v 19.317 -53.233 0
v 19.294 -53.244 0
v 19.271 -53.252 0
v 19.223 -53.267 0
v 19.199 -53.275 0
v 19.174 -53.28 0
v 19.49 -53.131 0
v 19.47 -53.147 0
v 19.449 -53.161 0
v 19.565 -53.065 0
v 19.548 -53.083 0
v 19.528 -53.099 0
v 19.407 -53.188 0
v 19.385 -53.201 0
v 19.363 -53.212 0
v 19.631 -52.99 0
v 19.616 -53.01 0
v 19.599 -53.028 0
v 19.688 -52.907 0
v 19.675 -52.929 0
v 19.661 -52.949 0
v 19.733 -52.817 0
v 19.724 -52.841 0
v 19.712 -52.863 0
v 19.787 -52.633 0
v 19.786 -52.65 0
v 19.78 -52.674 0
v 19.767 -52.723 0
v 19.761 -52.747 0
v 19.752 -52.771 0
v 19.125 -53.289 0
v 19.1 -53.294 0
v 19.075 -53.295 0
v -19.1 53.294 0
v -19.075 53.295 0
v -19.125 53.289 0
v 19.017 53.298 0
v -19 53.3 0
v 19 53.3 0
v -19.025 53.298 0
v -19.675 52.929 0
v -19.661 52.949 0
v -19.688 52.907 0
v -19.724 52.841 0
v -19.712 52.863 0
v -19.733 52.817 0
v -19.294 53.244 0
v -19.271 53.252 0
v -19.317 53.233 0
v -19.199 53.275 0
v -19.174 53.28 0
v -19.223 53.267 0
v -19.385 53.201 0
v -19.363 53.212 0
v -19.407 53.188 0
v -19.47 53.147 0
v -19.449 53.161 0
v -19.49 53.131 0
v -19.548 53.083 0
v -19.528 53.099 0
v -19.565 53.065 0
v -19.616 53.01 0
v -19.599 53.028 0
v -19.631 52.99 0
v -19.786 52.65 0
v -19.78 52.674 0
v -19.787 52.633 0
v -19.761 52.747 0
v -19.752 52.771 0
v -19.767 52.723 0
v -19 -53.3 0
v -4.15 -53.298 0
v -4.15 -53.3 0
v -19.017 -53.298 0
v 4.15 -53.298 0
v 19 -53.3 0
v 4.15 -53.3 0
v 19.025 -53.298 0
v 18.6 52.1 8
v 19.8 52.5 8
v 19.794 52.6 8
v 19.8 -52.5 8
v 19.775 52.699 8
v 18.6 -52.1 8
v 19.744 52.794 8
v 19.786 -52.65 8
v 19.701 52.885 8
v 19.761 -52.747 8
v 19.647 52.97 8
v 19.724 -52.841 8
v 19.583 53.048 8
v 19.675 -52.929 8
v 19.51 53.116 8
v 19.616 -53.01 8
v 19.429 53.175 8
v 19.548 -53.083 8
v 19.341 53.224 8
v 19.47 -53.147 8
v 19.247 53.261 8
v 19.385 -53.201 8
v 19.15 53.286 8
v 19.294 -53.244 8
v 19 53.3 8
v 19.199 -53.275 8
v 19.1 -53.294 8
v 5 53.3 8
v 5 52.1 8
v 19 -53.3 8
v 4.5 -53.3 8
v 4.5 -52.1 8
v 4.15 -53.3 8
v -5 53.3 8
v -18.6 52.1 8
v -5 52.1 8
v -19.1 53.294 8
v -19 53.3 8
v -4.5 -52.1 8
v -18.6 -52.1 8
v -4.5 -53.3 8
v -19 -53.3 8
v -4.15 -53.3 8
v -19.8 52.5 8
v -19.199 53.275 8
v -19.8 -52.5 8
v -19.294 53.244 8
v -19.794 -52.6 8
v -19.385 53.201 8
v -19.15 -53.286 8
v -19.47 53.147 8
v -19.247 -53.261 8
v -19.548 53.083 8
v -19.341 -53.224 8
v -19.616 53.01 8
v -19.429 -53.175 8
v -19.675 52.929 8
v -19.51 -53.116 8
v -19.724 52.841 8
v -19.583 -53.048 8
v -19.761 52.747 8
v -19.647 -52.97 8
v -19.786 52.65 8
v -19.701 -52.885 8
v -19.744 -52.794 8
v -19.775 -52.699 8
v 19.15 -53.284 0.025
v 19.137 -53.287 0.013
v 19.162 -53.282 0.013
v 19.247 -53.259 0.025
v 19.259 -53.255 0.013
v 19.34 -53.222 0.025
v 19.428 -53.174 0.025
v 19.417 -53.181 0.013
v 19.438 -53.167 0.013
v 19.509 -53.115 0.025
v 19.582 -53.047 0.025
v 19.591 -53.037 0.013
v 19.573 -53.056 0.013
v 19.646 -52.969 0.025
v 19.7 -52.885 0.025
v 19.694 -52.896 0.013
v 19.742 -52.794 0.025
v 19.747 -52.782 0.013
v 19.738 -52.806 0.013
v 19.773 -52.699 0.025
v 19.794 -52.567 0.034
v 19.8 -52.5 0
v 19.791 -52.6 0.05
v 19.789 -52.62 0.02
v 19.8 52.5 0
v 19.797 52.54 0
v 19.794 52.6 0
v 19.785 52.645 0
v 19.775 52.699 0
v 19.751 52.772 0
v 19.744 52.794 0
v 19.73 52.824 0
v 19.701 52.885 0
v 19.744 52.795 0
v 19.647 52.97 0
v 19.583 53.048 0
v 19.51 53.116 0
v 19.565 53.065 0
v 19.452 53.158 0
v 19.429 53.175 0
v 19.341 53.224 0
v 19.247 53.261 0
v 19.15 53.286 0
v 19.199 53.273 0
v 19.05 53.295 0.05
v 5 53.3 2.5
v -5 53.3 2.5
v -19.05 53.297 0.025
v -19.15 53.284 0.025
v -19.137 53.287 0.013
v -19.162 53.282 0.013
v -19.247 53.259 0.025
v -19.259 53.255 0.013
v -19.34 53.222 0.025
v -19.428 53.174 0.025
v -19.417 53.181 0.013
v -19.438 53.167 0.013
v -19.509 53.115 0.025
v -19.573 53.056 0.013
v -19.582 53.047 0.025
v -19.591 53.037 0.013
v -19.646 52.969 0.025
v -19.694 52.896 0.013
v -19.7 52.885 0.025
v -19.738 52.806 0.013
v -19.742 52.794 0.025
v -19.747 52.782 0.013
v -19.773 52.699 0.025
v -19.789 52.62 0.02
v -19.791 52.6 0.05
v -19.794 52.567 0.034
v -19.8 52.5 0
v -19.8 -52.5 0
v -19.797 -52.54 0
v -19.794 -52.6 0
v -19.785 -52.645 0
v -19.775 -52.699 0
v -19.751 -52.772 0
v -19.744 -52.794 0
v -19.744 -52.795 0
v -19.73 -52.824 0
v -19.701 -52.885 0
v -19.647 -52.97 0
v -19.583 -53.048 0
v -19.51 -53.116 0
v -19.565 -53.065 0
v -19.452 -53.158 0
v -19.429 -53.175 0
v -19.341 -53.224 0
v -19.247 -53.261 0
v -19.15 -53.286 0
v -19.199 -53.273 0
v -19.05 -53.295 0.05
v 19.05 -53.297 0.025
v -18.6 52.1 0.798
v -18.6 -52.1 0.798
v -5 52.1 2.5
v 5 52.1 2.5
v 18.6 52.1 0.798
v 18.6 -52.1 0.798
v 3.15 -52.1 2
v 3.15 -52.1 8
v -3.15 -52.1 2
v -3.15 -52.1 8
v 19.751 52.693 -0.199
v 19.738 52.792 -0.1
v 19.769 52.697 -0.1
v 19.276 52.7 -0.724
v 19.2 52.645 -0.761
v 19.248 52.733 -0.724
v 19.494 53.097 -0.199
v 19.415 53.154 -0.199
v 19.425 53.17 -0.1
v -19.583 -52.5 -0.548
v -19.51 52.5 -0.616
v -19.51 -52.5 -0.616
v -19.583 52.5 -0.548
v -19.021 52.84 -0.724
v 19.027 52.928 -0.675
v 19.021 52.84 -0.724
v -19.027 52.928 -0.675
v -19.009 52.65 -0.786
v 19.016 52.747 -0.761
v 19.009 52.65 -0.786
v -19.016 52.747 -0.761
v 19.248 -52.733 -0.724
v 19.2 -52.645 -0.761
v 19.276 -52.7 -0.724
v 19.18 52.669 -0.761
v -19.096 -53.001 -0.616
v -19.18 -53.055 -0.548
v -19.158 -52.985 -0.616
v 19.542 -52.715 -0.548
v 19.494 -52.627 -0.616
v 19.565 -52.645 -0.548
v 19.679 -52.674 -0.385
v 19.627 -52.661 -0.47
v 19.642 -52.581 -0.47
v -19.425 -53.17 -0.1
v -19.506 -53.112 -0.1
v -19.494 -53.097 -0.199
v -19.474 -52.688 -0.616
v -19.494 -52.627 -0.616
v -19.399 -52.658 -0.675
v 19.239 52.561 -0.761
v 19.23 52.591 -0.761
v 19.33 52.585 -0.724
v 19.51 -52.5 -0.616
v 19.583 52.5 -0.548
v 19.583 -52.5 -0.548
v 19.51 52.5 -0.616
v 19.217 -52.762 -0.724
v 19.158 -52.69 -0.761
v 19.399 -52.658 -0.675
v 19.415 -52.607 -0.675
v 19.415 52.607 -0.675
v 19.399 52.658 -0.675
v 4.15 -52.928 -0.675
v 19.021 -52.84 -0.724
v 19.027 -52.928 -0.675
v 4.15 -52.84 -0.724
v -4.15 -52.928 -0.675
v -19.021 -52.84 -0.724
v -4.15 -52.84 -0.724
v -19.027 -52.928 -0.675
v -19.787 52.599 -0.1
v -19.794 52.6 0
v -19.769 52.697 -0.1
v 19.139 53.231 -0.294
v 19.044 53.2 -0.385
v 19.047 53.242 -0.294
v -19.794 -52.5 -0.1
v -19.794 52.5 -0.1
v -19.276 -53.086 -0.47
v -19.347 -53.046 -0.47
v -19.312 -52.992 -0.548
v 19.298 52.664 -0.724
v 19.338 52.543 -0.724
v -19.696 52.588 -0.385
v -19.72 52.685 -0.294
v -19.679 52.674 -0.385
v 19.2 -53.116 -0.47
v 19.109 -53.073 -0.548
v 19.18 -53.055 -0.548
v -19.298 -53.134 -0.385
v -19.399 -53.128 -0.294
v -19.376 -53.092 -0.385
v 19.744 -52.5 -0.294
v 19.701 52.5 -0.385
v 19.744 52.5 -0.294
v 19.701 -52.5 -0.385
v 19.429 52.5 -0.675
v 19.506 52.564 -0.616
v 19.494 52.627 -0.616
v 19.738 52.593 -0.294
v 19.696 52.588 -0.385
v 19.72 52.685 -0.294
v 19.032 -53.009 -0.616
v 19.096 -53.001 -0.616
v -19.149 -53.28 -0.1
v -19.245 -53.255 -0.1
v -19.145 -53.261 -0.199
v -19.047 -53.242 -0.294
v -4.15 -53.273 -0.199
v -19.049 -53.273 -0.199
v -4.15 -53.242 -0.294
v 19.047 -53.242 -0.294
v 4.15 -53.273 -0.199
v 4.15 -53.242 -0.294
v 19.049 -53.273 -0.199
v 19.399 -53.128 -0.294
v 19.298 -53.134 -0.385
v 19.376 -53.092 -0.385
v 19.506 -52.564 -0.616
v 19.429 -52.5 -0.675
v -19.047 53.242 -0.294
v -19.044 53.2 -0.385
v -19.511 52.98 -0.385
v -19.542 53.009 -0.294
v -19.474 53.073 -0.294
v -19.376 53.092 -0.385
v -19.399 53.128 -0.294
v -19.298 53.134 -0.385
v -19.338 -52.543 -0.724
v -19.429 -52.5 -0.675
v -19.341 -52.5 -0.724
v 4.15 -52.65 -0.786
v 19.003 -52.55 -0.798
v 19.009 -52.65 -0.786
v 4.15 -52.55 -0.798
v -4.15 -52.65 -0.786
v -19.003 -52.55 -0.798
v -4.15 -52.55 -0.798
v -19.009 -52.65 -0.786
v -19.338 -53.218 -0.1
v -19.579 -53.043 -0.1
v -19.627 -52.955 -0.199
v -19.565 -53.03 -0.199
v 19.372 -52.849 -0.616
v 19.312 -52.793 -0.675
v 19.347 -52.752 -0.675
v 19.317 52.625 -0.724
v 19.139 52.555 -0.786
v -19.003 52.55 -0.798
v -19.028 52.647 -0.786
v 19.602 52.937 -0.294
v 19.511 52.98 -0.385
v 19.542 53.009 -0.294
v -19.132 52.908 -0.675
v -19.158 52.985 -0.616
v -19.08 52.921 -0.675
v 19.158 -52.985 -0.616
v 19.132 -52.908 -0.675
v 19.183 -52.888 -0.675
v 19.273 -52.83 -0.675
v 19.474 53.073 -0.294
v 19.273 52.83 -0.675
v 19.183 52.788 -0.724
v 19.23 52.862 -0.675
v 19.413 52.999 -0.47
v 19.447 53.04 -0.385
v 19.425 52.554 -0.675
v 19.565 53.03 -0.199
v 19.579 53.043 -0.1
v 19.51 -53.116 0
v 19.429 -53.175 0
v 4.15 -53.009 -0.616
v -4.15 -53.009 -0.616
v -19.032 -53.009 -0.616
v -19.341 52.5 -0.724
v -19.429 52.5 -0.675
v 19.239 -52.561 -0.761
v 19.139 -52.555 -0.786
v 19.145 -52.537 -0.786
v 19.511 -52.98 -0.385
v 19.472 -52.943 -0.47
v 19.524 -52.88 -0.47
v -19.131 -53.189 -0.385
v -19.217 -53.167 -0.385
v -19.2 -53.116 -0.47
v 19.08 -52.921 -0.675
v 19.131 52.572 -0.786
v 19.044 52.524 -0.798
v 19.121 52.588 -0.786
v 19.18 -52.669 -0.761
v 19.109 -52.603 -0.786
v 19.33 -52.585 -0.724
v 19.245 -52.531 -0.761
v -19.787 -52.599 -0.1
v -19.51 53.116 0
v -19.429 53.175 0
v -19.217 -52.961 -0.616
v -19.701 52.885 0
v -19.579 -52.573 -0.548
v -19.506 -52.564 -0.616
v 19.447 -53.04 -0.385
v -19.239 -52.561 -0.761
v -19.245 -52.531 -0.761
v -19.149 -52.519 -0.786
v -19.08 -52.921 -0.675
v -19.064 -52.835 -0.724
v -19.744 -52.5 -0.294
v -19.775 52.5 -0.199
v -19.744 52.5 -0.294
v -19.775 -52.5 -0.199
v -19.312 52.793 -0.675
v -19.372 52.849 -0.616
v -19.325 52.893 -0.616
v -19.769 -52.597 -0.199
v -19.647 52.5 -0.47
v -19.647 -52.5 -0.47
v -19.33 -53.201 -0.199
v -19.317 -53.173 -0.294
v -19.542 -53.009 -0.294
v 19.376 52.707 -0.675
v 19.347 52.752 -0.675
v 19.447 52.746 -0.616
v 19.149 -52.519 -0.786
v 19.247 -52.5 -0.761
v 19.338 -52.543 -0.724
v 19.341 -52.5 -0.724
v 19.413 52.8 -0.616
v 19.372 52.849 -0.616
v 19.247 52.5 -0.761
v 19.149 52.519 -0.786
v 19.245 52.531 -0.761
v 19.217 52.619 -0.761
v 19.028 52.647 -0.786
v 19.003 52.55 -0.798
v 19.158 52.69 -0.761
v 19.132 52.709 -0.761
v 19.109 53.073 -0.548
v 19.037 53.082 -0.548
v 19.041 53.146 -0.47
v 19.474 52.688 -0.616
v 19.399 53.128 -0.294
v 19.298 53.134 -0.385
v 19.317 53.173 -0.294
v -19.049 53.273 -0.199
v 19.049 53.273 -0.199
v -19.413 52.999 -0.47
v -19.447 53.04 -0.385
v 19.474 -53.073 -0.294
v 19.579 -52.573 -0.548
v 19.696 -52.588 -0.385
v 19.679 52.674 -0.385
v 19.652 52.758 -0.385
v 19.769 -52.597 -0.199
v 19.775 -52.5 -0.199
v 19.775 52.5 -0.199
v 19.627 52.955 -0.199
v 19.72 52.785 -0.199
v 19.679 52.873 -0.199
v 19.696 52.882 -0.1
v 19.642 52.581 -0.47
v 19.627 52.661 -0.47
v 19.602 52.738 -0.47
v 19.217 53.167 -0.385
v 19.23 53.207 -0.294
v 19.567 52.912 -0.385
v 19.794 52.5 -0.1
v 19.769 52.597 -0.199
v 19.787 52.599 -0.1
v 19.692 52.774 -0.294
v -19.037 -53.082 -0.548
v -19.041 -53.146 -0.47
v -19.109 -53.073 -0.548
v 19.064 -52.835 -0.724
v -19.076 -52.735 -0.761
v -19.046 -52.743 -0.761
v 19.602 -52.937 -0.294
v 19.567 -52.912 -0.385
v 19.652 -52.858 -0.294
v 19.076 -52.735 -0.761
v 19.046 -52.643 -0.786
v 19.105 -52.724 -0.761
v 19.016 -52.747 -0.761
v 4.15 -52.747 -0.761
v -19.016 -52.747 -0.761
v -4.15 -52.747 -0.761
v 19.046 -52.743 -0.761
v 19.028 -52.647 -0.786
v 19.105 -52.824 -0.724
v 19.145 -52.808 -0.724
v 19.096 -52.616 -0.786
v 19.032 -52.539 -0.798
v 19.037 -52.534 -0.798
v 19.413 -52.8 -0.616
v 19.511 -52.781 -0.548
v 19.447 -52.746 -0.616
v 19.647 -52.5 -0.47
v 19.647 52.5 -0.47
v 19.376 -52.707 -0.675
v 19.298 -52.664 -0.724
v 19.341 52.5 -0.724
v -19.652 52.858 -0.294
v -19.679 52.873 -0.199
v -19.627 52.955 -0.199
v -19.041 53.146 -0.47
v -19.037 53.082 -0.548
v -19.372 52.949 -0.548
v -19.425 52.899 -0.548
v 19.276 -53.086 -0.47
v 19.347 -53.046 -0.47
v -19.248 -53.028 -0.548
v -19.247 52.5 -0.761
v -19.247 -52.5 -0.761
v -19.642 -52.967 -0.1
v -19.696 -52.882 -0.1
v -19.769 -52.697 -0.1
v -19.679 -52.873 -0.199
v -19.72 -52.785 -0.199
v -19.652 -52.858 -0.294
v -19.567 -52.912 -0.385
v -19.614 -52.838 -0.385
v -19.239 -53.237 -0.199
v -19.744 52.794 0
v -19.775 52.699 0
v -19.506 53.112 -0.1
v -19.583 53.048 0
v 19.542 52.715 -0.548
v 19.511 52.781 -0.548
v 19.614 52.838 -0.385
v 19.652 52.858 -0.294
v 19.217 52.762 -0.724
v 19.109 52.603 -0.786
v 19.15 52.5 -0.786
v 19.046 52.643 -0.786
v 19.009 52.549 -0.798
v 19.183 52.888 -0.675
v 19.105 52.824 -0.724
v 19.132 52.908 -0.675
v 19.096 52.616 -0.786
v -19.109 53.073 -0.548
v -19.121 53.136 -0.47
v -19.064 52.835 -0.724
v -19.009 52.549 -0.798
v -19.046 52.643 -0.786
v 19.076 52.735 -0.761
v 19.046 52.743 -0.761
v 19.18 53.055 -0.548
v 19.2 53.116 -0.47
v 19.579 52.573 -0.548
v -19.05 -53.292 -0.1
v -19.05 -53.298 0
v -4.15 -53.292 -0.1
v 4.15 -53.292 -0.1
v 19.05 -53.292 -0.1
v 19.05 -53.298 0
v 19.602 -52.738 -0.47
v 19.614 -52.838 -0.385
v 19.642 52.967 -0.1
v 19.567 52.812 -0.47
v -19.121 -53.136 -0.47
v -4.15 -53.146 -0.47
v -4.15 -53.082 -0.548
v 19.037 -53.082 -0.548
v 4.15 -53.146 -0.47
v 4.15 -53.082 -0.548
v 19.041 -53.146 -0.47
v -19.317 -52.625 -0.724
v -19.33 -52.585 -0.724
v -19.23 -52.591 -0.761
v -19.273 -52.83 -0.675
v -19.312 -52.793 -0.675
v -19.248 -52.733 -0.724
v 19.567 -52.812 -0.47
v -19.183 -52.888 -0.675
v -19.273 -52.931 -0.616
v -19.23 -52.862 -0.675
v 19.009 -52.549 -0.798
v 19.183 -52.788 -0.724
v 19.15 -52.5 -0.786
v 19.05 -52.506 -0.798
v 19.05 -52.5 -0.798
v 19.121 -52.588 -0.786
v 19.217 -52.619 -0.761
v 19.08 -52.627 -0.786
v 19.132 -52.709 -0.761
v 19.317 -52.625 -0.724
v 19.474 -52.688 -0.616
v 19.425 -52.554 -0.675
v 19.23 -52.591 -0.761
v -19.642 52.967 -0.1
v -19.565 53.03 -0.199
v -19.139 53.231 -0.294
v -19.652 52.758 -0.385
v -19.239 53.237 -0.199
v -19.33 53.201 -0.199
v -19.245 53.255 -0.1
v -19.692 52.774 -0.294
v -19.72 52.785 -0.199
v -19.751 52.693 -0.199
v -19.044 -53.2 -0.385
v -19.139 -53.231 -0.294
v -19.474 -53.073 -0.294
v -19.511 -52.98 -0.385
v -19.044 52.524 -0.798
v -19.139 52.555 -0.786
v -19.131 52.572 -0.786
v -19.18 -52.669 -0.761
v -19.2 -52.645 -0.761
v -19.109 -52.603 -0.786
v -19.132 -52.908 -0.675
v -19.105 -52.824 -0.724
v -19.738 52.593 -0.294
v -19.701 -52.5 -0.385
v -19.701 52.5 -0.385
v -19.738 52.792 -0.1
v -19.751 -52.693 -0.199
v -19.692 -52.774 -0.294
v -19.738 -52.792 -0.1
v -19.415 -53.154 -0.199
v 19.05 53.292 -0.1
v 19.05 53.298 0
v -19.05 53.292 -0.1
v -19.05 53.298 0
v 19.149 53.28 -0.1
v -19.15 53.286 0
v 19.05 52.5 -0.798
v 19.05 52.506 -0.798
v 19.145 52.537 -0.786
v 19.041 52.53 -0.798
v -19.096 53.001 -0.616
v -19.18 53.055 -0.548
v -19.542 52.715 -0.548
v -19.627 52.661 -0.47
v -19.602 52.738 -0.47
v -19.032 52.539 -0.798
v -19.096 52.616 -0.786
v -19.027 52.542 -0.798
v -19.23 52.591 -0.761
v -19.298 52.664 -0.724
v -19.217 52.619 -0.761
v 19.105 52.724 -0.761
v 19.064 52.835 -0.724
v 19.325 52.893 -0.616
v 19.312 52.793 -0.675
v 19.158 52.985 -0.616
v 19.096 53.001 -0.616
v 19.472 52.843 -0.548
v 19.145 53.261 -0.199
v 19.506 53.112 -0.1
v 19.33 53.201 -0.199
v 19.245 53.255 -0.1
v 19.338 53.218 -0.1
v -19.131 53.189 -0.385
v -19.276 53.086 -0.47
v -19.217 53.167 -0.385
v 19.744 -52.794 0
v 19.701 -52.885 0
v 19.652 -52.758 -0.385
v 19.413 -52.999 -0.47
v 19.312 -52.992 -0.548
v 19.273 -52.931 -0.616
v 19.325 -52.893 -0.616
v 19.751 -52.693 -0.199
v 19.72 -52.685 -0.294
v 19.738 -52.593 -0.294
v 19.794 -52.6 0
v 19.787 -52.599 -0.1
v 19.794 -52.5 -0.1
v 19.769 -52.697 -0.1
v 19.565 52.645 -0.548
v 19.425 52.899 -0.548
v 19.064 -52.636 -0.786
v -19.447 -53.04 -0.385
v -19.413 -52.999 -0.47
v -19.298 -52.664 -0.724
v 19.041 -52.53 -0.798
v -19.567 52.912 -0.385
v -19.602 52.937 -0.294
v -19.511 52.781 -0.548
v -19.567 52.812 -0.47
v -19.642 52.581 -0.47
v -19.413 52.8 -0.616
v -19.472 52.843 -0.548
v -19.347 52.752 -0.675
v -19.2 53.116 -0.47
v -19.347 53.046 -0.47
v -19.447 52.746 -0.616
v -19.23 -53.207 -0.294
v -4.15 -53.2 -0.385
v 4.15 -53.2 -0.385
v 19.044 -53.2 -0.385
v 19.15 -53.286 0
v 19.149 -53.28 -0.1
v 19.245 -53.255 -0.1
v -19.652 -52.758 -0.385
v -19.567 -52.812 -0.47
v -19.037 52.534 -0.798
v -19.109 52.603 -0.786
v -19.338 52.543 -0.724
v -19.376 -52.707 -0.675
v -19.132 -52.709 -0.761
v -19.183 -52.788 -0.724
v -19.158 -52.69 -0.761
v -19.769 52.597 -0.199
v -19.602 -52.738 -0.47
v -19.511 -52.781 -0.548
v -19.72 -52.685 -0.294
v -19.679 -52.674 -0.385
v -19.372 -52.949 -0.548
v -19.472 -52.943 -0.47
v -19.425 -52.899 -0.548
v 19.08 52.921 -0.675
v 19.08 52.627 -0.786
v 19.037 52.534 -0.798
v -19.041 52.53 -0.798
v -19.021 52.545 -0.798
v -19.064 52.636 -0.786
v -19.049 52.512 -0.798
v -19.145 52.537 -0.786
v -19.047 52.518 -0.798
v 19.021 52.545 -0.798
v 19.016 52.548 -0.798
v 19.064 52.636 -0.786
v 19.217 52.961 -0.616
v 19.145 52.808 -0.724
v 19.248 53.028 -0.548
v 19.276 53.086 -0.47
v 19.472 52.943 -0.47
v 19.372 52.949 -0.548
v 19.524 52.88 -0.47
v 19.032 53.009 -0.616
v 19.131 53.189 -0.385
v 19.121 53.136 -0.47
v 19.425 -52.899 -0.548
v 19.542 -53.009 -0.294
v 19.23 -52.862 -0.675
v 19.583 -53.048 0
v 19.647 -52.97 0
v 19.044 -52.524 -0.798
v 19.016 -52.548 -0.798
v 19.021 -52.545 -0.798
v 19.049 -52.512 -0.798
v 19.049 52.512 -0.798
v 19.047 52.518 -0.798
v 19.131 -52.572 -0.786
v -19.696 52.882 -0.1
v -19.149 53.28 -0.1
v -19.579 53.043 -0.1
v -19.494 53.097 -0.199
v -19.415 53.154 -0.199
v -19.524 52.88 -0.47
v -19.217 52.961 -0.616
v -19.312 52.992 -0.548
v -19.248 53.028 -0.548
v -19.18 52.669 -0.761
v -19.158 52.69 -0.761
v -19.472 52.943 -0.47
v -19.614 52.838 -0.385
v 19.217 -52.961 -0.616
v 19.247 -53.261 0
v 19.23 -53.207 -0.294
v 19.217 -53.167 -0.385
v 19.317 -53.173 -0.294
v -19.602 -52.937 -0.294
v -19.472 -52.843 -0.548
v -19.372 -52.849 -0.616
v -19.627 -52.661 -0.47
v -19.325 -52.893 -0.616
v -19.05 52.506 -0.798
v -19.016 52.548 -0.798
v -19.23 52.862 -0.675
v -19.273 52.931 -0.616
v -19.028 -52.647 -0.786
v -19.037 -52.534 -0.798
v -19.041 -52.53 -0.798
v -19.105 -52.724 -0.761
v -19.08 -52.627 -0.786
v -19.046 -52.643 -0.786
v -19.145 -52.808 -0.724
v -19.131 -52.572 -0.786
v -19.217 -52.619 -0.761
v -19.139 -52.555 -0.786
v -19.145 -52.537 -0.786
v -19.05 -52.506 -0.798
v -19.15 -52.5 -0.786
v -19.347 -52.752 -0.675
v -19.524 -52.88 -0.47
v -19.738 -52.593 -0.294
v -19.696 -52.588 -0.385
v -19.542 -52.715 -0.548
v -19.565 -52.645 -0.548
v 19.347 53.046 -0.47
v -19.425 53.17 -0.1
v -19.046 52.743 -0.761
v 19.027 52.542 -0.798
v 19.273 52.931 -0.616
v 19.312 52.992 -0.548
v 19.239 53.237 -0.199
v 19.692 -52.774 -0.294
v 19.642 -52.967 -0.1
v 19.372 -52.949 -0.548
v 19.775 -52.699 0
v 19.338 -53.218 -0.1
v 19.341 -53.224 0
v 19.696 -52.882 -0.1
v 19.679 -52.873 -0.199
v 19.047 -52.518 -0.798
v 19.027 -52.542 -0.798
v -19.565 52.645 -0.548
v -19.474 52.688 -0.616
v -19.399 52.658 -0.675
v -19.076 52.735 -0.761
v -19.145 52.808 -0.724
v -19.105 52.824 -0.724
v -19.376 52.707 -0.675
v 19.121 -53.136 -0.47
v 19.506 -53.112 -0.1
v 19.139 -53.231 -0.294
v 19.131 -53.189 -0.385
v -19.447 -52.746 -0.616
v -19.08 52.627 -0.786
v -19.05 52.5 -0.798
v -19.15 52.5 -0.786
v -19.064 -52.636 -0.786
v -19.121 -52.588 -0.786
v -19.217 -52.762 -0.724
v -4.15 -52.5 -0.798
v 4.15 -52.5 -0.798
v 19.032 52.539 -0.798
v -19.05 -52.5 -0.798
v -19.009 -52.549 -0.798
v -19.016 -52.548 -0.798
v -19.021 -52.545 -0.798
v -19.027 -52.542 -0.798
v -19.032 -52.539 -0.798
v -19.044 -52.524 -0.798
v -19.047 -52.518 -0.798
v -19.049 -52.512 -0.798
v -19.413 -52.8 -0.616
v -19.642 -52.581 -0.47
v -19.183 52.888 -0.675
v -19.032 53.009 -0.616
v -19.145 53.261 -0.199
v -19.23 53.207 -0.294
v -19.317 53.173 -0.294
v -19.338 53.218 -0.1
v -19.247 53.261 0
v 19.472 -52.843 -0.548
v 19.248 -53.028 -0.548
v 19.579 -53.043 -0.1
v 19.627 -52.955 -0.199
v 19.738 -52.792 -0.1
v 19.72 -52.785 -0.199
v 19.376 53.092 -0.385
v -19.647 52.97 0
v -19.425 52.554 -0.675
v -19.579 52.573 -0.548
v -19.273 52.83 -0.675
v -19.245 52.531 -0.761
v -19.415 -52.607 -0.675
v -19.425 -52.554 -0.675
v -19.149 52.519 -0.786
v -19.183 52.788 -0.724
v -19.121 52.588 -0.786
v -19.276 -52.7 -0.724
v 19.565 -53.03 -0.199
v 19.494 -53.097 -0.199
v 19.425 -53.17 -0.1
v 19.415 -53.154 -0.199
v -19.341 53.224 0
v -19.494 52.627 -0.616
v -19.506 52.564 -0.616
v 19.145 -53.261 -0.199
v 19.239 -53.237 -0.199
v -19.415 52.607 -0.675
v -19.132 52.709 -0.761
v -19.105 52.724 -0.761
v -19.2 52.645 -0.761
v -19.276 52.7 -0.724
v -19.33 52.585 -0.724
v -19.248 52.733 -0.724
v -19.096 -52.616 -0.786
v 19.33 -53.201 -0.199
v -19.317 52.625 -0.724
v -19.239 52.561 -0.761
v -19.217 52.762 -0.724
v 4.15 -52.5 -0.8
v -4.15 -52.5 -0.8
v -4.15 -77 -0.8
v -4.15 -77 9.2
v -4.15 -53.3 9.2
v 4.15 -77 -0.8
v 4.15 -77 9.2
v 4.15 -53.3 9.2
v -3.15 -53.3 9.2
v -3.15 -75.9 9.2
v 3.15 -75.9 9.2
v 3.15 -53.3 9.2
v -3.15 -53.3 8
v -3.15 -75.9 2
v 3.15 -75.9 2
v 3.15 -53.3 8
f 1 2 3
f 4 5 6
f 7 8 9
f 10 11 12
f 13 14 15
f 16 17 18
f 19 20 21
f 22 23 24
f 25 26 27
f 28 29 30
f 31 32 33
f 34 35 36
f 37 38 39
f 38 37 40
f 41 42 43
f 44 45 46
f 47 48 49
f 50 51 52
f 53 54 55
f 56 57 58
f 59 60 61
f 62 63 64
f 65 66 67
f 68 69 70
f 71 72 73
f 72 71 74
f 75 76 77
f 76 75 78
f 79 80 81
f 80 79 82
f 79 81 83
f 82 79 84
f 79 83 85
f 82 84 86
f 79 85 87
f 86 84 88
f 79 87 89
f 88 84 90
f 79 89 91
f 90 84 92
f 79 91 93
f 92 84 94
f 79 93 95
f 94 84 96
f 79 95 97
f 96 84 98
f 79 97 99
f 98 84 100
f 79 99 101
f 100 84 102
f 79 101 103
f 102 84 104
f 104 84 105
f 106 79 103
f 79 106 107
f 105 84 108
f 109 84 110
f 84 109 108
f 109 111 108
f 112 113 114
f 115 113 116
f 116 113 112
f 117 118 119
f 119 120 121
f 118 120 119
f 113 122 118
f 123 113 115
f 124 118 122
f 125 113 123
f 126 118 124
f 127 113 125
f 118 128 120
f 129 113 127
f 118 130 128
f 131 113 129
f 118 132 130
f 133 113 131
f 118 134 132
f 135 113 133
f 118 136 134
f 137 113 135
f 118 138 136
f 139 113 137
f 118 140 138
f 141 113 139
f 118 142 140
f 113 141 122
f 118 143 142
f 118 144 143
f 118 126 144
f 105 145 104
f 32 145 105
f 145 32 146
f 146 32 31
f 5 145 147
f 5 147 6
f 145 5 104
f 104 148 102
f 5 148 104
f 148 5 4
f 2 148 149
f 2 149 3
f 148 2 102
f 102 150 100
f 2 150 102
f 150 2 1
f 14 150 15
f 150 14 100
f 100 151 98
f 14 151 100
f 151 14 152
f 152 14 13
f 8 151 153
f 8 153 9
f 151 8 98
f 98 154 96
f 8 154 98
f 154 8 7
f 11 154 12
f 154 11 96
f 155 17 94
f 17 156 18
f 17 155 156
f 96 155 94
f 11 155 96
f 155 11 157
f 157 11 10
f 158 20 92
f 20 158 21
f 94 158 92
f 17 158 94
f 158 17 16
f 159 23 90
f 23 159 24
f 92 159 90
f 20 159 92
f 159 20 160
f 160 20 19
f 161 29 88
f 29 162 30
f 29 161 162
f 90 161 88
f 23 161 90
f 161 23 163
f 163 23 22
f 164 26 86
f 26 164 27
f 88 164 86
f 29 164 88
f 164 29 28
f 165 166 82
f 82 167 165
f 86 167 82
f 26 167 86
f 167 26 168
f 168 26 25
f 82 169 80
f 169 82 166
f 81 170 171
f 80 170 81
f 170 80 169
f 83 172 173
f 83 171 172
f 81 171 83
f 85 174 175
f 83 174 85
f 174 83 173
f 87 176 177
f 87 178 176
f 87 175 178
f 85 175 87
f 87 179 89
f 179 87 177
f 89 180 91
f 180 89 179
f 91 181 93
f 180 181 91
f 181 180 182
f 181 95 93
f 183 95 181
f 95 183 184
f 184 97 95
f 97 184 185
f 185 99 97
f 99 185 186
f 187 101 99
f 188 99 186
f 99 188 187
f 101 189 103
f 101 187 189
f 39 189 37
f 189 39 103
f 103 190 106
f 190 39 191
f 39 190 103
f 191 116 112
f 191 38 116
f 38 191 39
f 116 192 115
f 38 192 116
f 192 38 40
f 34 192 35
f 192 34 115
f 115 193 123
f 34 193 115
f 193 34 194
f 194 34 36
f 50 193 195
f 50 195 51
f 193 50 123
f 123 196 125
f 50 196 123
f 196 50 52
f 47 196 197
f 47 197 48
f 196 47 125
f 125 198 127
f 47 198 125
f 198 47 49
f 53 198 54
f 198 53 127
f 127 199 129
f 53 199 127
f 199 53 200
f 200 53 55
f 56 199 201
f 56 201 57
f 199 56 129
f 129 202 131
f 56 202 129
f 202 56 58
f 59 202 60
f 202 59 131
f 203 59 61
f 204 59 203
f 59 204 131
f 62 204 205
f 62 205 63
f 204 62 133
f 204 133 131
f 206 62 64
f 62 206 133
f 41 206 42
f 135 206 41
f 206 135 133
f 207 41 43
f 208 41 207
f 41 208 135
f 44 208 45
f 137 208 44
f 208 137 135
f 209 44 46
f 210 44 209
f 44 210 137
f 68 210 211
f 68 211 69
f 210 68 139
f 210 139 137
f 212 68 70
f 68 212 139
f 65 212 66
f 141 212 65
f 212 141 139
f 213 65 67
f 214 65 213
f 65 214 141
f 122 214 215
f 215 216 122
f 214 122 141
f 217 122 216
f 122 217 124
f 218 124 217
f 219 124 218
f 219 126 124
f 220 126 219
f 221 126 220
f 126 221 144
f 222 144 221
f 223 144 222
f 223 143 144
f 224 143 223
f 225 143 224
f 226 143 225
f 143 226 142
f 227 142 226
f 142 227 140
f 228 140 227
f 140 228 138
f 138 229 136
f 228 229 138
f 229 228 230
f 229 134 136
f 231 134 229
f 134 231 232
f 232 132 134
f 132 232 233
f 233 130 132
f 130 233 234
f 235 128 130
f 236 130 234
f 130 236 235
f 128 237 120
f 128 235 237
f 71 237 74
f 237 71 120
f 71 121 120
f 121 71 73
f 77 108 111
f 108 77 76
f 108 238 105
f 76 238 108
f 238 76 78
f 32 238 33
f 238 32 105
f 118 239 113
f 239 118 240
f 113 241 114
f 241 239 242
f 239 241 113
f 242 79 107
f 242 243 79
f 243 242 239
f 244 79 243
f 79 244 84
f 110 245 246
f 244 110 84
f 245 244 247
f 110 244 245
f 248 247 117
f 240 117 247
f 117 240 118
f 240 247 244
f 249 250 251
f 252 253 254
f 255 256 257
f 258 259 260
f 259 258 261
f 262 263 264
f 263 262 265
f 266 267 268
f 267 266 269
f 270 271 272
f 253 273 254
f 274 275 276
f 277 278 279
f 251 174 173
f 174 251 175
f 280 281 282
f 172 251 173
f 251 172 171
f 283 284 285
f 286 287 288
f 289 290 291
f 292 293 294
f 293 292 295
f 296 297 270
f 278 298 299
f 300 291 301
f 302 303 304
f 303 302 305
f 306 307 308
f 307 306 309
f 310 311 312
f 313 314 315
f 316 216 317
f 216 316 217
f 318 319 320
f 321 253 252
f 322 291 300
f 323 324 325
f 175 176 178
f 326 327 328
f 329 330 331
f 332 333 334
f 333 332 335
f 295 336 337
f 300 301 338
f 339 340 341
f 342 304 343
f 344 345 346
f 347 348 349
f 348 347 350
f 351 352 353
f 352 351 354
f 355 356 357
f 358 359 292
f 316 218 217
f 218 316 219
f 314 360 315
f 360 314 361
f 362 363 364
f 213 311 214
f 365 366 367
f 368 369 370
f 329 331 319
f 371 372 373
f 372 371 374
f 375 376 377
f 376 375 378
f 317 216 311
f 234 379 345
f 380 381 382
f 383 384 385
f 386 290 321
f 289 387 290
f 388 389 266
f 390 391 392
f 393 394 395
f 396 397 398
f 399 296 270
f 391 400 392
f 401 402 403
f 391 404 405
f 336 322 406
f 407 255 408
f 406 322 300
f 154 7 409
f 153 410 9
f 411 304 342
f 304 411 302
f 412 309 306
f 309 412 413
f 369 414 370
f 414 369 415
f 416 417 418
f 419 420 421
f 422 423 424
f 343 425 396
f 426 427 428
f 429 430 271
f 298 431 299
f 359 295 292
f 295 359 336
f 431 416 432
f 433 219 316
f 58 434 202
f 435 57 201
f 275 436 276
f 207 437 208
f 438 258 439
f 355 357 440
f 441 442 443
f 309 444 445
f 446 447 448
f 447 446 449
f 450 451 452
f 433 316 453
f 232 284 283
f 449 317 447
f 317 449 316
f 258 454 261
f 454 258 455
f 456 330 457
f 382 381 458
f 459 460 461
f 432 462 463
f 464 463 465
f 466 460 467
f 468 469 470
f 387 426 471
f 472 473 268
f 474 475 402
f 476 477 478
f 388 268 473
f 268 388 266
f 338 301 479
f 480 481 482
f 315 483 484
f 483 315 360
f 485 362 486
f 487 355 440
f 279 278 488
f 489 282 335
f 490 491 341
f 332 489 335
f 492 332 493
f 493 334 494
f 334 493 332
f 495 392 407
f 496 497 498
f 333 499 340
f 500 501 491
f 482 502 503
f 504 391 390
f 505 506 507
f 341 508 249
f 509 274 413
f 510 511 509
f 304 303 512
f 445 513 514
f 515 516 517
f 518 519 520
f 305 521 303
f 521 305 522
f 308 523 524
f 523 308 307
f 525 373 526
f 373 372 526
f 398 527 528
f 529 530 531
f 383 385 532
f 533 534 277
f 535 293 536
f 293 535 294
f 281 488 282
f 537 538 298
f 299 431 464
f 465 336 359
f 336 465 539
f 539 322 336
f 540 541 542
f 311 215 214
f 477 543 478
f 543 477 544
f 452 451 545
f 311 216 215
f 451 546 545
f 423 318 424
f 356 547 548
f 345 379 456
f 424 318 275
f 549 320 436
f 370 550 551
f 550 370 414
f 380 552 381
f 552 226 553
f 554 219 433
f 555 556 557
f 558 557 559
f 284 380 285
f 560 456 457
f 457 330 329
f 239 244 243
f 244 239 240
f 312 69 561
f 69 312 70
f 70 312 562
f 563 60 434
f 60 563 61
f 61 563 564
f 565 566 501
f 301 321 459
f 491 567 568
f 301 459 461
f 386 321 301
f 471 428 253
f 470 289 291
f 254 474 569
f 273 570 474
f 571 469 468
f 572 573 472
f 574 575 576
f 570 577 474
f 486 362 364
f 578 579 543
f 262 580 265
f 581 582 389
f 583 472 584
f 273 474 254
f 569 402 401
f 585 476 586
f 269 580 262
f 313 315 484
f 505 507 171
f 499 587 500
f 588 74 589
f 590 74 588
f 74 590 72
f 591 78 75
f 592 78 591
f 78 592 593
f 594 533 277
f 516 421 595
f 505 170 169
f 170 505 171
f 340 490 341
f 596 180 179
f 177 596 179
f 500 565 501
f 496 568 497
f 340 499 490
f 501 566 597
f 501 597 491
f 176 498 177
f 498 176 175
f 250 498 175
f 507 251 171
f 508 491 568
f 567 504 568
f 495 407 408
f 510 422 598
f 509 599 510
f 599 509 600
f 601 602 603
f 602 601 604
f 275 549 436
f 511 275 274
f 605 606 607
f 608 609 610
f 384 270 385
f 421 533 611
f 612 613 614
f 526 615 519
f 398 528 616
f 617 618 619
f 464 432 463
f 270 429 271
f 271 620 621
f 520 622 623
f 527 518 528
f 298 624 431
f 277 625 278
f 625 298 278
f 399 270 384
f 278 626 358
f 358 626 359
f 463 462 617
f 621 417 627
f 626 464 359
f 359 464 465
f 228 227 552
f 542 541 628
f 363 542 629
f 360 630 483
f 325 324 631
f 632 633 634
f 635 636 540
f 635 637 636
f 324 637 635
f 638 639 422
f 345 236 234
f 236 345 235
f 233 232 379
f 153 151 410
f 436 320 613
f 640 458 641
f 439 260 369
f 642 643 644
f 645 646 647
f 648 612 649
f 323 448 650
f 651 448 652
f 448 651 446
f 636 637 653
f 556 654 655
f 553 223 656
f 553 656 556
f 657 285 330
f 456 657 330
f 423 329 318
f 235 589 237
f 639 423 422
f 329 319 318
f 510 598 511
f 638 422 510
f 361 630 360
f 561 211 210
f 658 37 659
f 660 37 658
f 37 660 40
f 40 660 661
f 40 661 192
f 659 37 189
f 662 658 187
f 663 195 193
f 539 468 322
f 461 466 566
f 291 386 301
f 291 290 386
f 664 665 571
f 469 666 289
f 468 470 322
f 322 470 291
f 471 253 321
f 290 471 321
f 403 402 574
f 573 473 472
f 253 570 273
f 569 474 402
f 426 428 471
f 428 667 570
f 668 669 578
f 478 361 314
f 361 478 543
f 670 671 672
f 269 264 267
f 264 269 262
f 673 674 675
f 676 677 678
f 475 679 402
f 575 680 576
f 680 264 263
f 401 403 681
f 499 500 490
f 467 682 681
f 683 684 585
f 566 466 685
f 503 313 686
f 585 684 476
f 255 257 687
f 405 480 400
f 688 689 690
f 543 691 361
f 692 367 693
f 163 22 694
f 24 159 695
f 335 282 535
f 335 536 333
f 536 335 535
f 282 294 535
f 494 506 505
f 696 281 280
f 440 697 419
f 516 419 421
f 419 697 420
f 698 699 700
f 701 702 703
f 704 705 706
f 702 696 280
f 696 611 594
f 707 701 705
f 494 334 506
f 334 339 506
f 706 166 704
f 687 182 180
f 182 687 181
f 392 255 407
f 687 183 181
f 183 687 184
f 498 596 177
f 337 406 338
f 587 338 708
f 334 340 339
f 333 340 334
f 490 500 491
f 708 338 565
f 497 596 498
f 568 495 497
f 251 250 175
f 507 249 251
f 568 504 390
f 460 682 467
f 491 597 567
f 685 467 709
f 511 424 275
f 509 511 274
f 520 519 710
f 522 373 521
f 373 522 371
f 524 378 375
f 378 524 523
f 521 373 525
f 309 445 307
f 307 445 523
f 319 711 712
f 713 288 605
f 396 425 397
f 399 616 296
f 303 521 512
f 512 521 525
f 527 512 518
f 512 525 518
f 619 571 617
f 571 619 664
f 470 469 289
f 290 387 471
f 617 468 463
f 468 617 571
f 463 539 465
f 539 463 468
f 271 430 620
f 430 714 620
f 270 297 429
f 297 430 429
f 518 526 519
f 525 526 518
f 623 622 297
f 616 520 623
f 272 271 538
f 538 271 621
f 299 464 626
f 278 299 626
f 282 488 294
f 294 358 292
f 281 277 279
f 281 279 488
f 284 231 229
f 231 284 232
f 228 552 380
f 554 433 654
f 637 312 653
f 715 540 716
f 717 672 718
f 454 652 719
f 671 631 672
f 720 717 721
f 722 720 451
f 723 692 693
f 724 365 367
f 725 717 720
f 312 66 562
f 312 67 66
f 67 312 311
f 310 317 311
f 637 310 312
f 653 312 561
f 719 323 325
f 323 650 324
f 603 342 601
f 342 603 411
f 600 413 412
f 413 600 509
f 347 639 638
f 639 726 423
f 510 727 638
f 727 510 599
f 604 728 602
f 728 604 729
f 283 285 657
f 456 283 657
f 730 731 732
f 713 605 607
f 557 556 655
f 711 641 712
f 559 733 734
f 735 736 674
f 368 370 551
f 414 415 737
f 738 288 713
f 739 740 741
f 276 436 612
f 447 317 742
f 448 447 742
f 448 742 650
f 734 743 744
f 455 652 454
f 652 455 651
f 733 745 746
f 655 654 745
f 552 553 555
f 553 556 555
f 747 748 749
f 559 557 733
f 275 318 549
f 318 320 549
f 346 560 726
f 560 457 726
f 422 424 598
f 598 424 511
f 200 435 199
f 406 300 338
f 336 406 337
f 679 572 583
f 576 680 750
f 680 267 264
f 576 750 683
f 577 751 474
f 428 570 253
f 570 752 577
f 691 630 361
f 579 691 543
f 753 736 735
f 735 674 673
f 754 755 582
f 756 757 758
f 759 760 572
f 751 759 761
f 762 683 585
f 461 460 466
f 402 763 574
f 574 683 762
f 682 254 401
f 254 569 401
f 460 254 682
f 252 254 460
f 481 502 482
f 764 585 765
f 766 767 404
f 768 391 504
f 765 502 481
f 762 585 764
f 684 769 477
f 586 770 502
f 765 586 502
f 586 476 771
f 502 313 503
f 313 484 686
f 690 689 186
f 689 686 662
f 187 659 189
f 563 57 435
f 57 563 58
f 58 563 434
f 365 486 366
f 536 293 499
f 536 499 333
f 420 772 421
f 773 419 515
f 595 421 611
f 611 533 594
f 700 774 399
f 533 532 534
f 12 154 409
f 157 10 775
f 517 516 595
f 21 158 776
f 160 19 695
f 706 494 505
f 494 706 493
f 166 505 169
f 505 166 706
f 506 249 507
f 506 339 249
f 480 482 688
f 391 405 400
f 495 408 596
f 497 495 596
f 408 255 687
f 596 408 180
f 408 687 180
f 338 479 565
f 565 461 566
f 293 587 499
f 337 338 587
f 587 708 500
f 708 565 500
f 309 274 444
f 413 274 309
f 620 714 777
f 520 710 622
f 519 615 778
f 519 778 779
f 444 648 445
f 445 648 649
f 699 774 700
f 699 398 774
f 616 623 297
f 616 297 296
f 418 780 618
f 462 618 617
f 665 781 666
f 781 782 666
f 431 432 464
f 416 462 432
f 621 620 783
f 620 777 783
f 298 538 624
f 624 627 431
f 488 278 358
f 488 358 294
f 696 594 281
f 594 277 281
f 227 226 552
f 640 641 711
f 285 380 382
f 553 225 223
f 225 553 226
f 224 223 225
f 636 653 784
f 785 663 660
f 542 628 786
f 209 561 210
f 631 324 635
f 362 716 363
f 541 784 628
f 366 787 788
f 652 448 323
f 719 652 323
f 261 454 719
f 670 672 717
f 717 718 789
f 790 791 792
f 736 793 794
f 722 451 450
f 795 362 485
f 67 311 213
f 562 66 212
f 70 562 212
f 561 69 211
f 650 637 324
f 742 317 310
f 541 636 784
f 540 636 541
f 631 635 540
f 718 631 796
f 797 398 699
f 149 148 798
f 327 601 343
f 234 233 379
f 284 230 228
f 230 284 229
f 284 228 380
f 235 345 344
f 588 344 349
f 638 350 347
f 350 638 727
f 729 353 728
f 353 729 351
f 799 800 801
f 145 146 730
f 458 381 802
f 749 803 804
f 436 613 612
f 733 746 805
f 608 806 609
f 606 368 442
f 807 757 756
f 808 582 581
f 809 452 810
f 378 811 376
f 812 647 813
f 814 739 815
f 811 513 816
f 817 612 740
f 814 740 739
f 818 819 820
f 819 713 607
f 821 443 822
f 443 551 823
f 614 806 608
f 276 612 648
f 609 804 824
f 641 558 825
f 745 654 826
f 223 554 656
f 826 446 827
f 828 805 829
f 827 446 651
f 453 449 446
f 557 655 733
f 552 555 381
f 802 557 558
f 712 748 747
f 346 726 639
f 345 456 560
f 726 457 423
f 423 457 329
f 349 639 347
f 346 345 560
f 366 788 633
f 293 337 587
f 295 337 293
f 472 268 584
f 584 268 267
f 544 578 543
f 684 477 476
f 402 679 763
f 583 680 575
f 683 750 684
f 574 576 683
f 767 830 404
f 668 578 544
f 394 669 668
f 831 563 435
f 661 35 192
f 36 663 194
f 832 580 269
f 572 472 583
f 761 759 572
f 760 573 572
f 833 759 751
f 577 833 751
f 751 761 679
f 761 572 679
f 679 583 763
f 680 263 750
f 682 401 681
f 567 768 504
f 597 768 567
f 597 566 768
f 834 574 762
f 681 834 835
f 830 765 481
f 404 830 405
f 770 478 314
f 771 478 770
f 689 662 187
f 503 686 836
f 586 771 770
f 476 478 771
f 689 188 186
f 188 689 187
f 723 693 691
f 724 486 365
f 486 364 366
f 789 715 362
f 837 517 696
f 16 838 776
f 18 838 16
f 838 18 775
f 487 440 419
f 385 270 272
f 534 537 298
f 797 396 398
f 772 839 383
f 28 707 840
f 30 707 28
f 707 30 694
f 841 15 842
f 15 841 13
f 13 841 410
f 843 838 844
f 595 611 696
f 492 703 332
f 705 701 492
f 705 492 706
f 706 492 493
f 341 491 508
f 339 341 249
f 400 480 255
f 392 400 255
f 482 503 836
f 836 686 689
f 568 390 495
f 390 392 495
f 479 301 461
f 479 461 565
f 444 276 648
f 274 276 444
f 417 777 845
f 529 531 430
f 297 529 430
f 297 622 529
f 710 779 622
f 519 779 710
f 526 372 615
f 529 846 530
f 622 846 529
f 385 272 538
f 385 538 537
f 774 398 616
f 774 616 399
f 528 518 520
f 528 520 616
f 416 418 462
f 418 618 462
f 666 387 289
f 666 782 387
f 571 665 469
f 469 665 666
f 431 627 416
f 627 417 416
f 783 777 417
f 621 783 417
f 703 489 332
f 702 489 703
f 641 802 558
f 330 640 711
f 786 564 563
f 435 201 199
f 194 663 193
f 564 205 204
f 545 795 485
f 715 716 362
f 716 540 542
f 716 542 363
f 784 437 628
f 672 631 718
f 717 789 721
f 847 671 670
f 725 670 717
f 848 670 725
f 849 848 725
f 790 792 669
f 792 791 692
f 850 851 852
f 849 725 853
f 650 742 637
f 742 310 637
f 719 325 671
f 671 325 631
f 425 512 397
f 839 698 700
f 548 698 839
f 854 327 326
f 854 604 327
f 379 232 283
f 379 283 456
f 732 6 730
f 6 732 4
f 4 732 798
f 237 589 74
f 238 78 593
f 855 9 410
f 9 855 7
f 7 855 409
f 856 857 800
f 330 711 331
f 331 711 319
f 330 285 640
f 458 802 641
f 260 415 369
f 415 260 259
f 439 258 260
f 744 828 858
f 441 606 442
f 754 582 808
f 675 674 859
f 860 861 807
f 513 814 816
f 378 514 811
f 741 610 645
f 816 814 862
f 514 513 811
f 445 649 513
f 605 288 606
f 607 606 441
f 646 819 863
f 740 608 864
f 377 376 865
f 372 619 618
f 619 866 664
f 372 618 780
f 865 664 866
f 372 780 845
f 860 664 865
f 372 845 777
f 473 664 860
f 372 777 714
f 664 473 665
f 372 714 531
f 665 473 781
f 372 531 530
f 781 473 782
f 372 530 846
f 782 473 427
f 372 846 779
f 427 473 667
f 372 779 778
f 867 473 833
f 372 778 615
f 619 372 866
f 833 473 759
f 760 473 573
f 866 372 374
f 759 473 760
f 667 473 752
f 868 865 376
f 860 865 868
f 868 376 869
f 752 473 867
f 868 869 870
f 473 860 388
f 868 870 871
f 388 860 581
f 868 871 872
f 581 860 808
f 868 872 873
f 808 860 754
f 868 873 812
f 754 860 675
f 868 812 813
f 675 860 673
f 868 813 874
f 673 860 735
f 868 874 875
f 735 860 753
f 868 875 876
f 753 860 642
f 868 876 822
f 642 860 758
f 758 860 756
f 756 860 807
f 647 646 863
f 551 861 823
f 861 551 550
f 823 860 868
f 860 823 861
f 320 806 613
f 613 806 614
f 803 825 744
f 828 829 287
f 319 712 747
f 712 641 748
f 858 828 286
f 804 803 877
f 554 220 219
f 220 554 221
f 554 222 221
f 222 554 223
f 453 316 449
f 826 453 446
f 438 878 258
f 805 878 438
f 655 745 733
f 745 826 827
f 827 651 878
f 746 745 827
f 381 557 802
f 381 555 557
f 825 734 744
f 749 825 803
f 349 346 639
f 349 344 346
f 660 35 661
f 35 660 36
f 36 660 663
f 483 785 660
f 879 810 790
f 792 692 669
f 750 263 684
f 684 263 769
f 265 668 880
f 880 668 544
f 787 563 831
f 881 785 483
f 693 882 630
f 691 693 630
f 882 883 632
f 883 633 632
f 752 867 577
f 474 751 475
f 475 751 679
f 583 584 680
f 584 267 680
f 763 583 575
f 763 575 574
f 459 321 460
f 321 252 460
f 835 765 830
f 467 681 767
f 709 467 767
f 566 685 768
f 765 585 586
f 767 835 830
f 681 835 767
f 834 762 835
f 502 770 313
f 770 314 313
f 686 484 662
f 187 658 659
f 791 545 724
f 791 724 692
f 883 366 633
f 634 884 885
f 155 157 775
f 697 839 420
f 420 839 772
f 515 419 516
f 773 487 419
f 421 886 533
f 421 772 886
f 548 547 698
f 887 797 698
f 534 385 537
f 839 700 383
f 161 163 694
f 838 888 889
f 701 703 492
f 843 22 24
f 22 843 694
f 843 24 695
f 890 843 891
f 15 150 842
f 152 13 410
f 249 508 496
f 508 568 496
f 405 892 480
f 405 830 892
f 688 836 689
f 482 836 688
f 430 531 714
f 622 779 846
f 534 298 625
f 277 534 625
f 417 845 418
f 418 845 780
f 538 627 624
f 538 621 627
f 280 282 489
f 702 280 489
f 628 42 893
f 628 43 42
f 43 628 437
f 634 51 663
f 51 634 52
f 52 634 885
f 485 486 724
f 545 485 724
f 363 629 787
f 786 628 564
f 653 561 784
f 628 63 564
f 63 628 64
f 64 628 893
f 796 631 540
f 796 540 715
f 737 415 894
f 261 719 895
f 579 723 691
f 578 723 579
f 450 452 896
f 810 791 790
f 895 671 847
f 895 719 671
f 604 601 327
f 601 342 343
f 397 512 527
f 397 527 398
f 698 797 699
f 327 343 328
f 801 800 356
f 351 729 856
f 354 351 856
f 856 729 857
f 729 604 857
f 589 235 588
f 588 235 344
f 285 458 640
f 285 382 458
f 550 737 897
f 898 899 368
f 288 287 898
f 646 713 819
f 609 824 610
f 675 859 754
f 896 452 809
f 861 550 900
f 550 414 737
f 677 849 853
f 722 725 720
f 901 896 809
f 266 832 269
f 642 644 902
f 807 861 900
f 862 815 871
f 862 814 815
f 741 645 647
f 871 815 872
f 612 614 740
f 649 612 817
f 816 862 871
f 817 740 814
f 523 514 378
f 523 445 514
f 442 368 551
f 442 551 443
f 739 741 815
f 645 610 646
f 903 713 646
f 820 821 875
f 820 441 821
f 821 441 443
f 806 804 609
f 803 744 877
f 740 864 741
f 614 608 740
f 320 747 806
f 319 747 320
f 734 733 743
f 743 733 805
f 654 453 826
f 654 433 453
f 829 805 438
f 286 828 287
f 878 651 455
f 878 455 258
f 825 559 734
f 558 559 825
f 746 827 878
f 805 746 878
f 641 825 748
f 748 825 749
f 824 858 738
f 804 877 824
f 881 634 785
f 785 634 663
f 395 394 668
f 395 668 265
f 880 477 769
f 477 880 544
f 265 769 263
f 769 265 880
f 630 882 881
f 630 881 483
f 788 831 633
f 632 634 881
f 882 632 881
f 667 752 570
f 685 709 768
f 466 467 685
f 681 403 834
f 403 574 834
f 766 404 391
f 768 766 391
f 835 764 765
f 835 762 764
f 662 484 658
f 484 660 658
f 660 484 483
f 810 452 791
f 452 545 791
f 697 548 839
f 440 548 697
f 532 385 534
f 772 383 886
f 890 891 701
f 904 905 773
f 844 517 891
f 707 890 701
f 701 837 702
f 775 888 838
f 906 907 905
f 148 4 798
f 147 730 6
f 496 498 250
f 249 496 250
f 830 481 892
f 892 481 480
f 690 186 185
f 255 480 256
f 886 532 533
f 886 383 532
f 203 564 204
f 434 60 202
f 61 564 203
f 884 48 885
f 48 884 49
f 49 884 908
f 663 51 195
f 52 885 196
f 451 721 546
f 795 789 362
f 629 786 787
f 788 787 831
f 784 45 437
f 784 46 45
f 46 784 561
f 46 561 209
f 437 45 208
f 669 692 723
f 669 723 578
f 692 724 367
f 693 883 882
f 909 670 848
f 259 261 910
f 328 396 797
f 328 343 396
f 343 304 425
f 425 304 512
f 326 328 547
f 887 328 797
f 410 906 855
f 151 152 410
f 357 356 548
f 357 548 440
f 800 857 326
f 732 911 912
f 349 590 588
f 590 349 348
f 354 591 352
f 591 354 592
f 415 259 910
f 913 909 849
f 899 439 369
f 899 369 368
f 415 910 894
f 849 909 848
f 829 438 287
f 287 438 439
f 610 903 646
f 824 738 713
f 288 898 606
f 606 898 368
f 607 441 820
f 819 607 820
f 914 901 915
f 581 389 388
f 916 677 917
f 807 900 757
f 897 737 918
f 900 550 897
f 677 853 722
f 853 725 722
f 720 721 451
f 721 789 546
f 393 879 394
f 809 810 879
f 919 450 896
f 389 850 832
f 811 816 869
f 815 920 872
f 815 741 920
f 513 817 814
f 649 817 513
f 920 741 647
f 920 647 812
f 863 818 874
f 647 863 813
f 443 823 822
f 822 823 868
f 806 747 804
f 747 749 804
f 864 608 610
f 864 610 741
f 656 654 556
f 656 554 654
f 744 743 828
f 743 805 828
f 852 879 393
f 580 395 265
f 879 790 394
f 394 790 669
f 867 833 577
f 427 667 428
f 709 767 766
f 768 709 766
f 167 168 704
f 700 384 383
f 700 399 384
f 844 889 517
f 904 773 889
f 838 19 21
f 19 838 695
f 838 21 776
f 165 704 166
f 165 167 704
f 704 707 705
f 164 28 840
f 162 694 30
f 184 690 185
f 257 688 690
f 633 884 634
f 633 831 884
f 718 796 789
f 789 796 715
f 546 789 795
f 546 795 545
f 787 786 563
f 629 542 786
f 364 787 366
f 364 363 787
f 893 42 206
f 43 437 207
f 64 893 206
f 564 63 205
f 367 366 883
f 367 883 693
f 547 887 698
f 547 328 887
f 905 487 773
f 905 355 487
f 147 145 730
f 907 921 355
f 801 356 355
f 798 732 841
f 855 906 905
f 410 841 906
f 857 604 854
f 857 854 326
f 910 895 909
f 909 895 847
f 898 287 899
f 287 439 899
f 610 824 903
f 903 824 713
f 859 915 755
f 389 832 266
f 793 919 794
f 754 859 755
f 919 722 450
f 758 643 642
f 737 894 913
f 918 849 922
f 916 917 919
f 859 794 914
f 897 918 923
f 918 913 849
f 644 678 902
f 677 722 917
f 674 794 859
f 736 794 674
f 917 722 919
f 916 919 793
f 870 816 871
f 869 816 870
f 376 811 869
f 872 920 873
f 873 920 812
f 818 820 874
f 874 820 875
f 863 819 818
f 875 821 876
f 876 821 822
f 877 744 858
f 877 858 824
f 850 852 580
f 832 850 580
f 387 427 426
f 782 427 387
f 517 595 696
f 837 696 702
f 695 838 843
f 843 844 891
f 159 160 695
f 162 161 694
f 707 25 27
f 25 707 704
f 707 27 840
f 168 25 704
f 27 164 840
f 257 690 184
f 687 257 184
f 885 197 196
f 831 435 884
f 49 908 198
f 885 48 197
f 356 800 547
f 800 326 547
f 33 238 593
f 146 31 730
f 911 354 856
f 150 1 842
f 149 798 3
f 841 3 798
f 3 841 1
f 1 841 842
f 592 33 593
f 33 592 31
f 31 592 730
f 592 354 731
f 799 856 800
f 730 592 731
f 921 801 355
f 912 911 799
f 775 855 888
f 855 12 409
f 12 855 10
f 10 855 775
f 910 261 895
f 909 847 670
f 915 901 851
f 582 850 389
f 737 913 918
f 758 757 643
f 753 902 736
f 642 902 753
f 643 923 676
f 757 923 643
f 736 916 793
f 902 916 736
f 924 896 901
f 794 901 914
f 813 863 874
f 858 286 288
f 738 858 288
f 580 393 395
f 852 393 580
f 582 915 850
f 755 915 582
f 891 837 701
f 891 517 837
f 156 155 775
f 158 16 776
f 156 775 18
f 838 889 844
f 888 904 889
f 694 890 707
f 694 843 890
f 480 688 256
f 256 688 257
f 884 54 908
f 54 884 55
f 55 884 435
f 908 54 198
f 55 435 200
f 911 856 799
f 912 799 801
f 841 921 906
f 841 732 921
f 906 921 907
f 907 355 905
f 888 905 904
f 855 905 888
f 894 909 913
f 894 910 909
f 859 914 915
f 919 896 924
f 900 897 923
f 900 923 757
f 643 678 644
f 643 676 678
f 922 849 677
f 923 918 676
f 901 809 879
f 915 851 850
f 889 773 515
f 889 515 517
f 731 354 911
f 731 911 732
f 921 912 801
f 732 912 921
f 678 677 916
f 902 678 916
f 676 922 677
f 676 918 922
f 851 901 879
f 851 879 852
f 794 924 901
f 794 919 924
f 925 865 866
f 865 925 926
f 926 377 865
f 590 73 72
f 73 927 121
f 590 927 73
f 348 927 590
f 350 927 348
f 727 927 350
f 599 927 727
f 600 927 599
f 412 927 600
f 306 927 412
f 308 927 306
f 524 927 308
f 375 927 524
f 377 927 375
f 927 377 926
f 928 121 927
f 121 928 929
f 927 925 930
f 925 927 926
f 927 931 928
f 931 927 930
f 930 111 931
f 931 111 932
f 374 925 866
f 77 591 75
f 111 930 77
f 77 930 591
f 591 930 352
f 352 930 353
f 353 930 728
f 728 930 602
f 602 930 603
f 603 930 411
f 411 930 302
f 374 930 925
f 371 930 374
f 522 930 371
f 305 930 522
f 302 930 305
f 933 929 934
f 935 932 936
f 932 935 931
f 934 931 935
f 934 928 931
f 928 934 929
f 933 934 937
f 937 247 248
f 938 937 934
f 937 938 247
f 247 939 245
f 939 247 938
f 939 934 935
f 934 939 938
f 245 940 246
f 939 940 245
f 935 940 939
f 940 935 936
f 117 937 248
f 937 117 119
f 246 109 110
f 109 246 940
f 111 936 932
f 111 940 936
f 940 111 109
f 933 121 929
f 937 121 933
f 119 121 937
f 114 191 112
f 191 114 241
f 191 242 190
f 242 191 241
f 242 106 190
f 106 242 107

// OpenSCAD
$fn=50;
BOX_W = 38; // Box Width
BOX_L = 105;// Box Length
BOX_H = 8.0; // Box Height
CORNER_RADIUS = 0.8; // Radius of corners
WALL = 0.8;// Wall Thickness all sides

MIC_OUTSIDE_WIDTH=8.3;
MIC_OUTSIDE_HEIGHT=10.0;
MIC_INSIDE_WIDTH=6.3;
MIC_LENGTH=24.5;

MIC_OFFSET_X = 0;
MIC_OFFSET_Y = -34.5;
MIC_OFFSET_Z = -0.8;

VENT_OFFSET = -4.5;
VENT_L = 19.0;
VENT_R = -19.0;

module sq_vent(x, y, vent_offset) {
    translate([x, y, BOX_H + vent_offset]) {
        rotate([90, 0, 90]) {
            linear_extrude(2.5) square([2, 2], center=true);
        }
    }
}

module vent(x, y, vent_offset) {
    translate([x, y, BOX_H + vent_offset]) {
        rotate([90, 0, 90]) {
            cylinder(h=3.0, d=2.0, center=true);
        }
    }
}

difference() {
    union() {
        linear_extrude( BOX_H )
        difference(){
            offset(r=CORNER_RADIUS) square( [BOX_W, BOX_L], center=true );
            offset(r= CORNER_RADIUS - WALL) square([BOX_W-WALL, BOX_L-WALL], center=true );
        };
        coordinates = [ [0,0],[0,BOX_L],[BOX_W,BOX_L],[BOX_W,0] ];
        translate ( [-BOX_W/2, -BOX_L/2] )
            hull()
            for (i = coordinates)
            translate(i) sphere(CORNER_RADIUS);
            
        translate([MIC_OFFSET_X, MIC_OFFSET_Y, MIC_OFFSET_Z]){
            // mic box
            translate([0,-18.0,BOX_H-3])
            rotate([90,0,0])
            linear_extrude(MIC_LENGTH)square([MIC_OUTSIDE_WIDTH,MIC_OUTSIDE_HEIGHT], center=true);
        }
    }
    translate([MIC_OFFSET_X, MIC_OFFSET_Y, MIC_OFFSET_Z]){
        // inside mic channel
        translate([0,-13.8,BOX_H-0.2]) // inside
        rotate([90,0,0])
        linear_extrude(MIC_LENGTH+3.1) square([MIC_INSIDE_WIDTH,MIC_OUTSIDE_HEIGHT], center=true); 
        
        // mic lid clearance at mic box opening
        translate([0, -16.8, BOX_H+1.90])
        rotate([90,0,0])
        linear_extrude(2.0) square([9,2.2], center=true);   
    }
    // cable exit
    translate([0,54.0,BOX_H-2.5])
    rotate([90,0,0])
    #linear_extrude(3.0) square([10,6], center=true);
    /*
    // gas sensor vents
    vent(VENT_L, 29.0, VENT_OFFSET);
    vent(VENT_L, 21.0, VENT_OFFSET);
    vent(VENT_L, 13.0, VENT_OFFSET);
    vent(VENT_L, 5.0, VENT_OFFSET);
    vent(VENT_L, -3.0, VENT_OFFSET);
    vent(VENT_L, -11.0, VENT_OFFSET);
    
    vent(VENT_R, 29.0, VENT_OFFSET);
    vent(VENT_R, 21.0, VENT_OFFSET);
    vent(VENT_R, 13.0, VENT_OFFSET);
    vent(VENT_R, 5.0, VENT_OFFSET);
    vent(VENT_R, -3.0, VENT_OFFSET);
    vent(VENT_R, -11.0, VENT_OFFSET);
    */
}

/*
// save for archiving

module waterdrop() {
    difference(){
        // Main drop shape
        # cylinder(r1=0, r2=0.1875, h=0.375, center=false);
        
        // To subtract from the base to make it rounded like a waterdrop
        translate([0, 0, -0.05])
        sphere(r=0.1875);
    }
}

for(i=[0:2]){
    translate([i*0.5, 0, 0]){
        waterdrop();
    }
}
*/
